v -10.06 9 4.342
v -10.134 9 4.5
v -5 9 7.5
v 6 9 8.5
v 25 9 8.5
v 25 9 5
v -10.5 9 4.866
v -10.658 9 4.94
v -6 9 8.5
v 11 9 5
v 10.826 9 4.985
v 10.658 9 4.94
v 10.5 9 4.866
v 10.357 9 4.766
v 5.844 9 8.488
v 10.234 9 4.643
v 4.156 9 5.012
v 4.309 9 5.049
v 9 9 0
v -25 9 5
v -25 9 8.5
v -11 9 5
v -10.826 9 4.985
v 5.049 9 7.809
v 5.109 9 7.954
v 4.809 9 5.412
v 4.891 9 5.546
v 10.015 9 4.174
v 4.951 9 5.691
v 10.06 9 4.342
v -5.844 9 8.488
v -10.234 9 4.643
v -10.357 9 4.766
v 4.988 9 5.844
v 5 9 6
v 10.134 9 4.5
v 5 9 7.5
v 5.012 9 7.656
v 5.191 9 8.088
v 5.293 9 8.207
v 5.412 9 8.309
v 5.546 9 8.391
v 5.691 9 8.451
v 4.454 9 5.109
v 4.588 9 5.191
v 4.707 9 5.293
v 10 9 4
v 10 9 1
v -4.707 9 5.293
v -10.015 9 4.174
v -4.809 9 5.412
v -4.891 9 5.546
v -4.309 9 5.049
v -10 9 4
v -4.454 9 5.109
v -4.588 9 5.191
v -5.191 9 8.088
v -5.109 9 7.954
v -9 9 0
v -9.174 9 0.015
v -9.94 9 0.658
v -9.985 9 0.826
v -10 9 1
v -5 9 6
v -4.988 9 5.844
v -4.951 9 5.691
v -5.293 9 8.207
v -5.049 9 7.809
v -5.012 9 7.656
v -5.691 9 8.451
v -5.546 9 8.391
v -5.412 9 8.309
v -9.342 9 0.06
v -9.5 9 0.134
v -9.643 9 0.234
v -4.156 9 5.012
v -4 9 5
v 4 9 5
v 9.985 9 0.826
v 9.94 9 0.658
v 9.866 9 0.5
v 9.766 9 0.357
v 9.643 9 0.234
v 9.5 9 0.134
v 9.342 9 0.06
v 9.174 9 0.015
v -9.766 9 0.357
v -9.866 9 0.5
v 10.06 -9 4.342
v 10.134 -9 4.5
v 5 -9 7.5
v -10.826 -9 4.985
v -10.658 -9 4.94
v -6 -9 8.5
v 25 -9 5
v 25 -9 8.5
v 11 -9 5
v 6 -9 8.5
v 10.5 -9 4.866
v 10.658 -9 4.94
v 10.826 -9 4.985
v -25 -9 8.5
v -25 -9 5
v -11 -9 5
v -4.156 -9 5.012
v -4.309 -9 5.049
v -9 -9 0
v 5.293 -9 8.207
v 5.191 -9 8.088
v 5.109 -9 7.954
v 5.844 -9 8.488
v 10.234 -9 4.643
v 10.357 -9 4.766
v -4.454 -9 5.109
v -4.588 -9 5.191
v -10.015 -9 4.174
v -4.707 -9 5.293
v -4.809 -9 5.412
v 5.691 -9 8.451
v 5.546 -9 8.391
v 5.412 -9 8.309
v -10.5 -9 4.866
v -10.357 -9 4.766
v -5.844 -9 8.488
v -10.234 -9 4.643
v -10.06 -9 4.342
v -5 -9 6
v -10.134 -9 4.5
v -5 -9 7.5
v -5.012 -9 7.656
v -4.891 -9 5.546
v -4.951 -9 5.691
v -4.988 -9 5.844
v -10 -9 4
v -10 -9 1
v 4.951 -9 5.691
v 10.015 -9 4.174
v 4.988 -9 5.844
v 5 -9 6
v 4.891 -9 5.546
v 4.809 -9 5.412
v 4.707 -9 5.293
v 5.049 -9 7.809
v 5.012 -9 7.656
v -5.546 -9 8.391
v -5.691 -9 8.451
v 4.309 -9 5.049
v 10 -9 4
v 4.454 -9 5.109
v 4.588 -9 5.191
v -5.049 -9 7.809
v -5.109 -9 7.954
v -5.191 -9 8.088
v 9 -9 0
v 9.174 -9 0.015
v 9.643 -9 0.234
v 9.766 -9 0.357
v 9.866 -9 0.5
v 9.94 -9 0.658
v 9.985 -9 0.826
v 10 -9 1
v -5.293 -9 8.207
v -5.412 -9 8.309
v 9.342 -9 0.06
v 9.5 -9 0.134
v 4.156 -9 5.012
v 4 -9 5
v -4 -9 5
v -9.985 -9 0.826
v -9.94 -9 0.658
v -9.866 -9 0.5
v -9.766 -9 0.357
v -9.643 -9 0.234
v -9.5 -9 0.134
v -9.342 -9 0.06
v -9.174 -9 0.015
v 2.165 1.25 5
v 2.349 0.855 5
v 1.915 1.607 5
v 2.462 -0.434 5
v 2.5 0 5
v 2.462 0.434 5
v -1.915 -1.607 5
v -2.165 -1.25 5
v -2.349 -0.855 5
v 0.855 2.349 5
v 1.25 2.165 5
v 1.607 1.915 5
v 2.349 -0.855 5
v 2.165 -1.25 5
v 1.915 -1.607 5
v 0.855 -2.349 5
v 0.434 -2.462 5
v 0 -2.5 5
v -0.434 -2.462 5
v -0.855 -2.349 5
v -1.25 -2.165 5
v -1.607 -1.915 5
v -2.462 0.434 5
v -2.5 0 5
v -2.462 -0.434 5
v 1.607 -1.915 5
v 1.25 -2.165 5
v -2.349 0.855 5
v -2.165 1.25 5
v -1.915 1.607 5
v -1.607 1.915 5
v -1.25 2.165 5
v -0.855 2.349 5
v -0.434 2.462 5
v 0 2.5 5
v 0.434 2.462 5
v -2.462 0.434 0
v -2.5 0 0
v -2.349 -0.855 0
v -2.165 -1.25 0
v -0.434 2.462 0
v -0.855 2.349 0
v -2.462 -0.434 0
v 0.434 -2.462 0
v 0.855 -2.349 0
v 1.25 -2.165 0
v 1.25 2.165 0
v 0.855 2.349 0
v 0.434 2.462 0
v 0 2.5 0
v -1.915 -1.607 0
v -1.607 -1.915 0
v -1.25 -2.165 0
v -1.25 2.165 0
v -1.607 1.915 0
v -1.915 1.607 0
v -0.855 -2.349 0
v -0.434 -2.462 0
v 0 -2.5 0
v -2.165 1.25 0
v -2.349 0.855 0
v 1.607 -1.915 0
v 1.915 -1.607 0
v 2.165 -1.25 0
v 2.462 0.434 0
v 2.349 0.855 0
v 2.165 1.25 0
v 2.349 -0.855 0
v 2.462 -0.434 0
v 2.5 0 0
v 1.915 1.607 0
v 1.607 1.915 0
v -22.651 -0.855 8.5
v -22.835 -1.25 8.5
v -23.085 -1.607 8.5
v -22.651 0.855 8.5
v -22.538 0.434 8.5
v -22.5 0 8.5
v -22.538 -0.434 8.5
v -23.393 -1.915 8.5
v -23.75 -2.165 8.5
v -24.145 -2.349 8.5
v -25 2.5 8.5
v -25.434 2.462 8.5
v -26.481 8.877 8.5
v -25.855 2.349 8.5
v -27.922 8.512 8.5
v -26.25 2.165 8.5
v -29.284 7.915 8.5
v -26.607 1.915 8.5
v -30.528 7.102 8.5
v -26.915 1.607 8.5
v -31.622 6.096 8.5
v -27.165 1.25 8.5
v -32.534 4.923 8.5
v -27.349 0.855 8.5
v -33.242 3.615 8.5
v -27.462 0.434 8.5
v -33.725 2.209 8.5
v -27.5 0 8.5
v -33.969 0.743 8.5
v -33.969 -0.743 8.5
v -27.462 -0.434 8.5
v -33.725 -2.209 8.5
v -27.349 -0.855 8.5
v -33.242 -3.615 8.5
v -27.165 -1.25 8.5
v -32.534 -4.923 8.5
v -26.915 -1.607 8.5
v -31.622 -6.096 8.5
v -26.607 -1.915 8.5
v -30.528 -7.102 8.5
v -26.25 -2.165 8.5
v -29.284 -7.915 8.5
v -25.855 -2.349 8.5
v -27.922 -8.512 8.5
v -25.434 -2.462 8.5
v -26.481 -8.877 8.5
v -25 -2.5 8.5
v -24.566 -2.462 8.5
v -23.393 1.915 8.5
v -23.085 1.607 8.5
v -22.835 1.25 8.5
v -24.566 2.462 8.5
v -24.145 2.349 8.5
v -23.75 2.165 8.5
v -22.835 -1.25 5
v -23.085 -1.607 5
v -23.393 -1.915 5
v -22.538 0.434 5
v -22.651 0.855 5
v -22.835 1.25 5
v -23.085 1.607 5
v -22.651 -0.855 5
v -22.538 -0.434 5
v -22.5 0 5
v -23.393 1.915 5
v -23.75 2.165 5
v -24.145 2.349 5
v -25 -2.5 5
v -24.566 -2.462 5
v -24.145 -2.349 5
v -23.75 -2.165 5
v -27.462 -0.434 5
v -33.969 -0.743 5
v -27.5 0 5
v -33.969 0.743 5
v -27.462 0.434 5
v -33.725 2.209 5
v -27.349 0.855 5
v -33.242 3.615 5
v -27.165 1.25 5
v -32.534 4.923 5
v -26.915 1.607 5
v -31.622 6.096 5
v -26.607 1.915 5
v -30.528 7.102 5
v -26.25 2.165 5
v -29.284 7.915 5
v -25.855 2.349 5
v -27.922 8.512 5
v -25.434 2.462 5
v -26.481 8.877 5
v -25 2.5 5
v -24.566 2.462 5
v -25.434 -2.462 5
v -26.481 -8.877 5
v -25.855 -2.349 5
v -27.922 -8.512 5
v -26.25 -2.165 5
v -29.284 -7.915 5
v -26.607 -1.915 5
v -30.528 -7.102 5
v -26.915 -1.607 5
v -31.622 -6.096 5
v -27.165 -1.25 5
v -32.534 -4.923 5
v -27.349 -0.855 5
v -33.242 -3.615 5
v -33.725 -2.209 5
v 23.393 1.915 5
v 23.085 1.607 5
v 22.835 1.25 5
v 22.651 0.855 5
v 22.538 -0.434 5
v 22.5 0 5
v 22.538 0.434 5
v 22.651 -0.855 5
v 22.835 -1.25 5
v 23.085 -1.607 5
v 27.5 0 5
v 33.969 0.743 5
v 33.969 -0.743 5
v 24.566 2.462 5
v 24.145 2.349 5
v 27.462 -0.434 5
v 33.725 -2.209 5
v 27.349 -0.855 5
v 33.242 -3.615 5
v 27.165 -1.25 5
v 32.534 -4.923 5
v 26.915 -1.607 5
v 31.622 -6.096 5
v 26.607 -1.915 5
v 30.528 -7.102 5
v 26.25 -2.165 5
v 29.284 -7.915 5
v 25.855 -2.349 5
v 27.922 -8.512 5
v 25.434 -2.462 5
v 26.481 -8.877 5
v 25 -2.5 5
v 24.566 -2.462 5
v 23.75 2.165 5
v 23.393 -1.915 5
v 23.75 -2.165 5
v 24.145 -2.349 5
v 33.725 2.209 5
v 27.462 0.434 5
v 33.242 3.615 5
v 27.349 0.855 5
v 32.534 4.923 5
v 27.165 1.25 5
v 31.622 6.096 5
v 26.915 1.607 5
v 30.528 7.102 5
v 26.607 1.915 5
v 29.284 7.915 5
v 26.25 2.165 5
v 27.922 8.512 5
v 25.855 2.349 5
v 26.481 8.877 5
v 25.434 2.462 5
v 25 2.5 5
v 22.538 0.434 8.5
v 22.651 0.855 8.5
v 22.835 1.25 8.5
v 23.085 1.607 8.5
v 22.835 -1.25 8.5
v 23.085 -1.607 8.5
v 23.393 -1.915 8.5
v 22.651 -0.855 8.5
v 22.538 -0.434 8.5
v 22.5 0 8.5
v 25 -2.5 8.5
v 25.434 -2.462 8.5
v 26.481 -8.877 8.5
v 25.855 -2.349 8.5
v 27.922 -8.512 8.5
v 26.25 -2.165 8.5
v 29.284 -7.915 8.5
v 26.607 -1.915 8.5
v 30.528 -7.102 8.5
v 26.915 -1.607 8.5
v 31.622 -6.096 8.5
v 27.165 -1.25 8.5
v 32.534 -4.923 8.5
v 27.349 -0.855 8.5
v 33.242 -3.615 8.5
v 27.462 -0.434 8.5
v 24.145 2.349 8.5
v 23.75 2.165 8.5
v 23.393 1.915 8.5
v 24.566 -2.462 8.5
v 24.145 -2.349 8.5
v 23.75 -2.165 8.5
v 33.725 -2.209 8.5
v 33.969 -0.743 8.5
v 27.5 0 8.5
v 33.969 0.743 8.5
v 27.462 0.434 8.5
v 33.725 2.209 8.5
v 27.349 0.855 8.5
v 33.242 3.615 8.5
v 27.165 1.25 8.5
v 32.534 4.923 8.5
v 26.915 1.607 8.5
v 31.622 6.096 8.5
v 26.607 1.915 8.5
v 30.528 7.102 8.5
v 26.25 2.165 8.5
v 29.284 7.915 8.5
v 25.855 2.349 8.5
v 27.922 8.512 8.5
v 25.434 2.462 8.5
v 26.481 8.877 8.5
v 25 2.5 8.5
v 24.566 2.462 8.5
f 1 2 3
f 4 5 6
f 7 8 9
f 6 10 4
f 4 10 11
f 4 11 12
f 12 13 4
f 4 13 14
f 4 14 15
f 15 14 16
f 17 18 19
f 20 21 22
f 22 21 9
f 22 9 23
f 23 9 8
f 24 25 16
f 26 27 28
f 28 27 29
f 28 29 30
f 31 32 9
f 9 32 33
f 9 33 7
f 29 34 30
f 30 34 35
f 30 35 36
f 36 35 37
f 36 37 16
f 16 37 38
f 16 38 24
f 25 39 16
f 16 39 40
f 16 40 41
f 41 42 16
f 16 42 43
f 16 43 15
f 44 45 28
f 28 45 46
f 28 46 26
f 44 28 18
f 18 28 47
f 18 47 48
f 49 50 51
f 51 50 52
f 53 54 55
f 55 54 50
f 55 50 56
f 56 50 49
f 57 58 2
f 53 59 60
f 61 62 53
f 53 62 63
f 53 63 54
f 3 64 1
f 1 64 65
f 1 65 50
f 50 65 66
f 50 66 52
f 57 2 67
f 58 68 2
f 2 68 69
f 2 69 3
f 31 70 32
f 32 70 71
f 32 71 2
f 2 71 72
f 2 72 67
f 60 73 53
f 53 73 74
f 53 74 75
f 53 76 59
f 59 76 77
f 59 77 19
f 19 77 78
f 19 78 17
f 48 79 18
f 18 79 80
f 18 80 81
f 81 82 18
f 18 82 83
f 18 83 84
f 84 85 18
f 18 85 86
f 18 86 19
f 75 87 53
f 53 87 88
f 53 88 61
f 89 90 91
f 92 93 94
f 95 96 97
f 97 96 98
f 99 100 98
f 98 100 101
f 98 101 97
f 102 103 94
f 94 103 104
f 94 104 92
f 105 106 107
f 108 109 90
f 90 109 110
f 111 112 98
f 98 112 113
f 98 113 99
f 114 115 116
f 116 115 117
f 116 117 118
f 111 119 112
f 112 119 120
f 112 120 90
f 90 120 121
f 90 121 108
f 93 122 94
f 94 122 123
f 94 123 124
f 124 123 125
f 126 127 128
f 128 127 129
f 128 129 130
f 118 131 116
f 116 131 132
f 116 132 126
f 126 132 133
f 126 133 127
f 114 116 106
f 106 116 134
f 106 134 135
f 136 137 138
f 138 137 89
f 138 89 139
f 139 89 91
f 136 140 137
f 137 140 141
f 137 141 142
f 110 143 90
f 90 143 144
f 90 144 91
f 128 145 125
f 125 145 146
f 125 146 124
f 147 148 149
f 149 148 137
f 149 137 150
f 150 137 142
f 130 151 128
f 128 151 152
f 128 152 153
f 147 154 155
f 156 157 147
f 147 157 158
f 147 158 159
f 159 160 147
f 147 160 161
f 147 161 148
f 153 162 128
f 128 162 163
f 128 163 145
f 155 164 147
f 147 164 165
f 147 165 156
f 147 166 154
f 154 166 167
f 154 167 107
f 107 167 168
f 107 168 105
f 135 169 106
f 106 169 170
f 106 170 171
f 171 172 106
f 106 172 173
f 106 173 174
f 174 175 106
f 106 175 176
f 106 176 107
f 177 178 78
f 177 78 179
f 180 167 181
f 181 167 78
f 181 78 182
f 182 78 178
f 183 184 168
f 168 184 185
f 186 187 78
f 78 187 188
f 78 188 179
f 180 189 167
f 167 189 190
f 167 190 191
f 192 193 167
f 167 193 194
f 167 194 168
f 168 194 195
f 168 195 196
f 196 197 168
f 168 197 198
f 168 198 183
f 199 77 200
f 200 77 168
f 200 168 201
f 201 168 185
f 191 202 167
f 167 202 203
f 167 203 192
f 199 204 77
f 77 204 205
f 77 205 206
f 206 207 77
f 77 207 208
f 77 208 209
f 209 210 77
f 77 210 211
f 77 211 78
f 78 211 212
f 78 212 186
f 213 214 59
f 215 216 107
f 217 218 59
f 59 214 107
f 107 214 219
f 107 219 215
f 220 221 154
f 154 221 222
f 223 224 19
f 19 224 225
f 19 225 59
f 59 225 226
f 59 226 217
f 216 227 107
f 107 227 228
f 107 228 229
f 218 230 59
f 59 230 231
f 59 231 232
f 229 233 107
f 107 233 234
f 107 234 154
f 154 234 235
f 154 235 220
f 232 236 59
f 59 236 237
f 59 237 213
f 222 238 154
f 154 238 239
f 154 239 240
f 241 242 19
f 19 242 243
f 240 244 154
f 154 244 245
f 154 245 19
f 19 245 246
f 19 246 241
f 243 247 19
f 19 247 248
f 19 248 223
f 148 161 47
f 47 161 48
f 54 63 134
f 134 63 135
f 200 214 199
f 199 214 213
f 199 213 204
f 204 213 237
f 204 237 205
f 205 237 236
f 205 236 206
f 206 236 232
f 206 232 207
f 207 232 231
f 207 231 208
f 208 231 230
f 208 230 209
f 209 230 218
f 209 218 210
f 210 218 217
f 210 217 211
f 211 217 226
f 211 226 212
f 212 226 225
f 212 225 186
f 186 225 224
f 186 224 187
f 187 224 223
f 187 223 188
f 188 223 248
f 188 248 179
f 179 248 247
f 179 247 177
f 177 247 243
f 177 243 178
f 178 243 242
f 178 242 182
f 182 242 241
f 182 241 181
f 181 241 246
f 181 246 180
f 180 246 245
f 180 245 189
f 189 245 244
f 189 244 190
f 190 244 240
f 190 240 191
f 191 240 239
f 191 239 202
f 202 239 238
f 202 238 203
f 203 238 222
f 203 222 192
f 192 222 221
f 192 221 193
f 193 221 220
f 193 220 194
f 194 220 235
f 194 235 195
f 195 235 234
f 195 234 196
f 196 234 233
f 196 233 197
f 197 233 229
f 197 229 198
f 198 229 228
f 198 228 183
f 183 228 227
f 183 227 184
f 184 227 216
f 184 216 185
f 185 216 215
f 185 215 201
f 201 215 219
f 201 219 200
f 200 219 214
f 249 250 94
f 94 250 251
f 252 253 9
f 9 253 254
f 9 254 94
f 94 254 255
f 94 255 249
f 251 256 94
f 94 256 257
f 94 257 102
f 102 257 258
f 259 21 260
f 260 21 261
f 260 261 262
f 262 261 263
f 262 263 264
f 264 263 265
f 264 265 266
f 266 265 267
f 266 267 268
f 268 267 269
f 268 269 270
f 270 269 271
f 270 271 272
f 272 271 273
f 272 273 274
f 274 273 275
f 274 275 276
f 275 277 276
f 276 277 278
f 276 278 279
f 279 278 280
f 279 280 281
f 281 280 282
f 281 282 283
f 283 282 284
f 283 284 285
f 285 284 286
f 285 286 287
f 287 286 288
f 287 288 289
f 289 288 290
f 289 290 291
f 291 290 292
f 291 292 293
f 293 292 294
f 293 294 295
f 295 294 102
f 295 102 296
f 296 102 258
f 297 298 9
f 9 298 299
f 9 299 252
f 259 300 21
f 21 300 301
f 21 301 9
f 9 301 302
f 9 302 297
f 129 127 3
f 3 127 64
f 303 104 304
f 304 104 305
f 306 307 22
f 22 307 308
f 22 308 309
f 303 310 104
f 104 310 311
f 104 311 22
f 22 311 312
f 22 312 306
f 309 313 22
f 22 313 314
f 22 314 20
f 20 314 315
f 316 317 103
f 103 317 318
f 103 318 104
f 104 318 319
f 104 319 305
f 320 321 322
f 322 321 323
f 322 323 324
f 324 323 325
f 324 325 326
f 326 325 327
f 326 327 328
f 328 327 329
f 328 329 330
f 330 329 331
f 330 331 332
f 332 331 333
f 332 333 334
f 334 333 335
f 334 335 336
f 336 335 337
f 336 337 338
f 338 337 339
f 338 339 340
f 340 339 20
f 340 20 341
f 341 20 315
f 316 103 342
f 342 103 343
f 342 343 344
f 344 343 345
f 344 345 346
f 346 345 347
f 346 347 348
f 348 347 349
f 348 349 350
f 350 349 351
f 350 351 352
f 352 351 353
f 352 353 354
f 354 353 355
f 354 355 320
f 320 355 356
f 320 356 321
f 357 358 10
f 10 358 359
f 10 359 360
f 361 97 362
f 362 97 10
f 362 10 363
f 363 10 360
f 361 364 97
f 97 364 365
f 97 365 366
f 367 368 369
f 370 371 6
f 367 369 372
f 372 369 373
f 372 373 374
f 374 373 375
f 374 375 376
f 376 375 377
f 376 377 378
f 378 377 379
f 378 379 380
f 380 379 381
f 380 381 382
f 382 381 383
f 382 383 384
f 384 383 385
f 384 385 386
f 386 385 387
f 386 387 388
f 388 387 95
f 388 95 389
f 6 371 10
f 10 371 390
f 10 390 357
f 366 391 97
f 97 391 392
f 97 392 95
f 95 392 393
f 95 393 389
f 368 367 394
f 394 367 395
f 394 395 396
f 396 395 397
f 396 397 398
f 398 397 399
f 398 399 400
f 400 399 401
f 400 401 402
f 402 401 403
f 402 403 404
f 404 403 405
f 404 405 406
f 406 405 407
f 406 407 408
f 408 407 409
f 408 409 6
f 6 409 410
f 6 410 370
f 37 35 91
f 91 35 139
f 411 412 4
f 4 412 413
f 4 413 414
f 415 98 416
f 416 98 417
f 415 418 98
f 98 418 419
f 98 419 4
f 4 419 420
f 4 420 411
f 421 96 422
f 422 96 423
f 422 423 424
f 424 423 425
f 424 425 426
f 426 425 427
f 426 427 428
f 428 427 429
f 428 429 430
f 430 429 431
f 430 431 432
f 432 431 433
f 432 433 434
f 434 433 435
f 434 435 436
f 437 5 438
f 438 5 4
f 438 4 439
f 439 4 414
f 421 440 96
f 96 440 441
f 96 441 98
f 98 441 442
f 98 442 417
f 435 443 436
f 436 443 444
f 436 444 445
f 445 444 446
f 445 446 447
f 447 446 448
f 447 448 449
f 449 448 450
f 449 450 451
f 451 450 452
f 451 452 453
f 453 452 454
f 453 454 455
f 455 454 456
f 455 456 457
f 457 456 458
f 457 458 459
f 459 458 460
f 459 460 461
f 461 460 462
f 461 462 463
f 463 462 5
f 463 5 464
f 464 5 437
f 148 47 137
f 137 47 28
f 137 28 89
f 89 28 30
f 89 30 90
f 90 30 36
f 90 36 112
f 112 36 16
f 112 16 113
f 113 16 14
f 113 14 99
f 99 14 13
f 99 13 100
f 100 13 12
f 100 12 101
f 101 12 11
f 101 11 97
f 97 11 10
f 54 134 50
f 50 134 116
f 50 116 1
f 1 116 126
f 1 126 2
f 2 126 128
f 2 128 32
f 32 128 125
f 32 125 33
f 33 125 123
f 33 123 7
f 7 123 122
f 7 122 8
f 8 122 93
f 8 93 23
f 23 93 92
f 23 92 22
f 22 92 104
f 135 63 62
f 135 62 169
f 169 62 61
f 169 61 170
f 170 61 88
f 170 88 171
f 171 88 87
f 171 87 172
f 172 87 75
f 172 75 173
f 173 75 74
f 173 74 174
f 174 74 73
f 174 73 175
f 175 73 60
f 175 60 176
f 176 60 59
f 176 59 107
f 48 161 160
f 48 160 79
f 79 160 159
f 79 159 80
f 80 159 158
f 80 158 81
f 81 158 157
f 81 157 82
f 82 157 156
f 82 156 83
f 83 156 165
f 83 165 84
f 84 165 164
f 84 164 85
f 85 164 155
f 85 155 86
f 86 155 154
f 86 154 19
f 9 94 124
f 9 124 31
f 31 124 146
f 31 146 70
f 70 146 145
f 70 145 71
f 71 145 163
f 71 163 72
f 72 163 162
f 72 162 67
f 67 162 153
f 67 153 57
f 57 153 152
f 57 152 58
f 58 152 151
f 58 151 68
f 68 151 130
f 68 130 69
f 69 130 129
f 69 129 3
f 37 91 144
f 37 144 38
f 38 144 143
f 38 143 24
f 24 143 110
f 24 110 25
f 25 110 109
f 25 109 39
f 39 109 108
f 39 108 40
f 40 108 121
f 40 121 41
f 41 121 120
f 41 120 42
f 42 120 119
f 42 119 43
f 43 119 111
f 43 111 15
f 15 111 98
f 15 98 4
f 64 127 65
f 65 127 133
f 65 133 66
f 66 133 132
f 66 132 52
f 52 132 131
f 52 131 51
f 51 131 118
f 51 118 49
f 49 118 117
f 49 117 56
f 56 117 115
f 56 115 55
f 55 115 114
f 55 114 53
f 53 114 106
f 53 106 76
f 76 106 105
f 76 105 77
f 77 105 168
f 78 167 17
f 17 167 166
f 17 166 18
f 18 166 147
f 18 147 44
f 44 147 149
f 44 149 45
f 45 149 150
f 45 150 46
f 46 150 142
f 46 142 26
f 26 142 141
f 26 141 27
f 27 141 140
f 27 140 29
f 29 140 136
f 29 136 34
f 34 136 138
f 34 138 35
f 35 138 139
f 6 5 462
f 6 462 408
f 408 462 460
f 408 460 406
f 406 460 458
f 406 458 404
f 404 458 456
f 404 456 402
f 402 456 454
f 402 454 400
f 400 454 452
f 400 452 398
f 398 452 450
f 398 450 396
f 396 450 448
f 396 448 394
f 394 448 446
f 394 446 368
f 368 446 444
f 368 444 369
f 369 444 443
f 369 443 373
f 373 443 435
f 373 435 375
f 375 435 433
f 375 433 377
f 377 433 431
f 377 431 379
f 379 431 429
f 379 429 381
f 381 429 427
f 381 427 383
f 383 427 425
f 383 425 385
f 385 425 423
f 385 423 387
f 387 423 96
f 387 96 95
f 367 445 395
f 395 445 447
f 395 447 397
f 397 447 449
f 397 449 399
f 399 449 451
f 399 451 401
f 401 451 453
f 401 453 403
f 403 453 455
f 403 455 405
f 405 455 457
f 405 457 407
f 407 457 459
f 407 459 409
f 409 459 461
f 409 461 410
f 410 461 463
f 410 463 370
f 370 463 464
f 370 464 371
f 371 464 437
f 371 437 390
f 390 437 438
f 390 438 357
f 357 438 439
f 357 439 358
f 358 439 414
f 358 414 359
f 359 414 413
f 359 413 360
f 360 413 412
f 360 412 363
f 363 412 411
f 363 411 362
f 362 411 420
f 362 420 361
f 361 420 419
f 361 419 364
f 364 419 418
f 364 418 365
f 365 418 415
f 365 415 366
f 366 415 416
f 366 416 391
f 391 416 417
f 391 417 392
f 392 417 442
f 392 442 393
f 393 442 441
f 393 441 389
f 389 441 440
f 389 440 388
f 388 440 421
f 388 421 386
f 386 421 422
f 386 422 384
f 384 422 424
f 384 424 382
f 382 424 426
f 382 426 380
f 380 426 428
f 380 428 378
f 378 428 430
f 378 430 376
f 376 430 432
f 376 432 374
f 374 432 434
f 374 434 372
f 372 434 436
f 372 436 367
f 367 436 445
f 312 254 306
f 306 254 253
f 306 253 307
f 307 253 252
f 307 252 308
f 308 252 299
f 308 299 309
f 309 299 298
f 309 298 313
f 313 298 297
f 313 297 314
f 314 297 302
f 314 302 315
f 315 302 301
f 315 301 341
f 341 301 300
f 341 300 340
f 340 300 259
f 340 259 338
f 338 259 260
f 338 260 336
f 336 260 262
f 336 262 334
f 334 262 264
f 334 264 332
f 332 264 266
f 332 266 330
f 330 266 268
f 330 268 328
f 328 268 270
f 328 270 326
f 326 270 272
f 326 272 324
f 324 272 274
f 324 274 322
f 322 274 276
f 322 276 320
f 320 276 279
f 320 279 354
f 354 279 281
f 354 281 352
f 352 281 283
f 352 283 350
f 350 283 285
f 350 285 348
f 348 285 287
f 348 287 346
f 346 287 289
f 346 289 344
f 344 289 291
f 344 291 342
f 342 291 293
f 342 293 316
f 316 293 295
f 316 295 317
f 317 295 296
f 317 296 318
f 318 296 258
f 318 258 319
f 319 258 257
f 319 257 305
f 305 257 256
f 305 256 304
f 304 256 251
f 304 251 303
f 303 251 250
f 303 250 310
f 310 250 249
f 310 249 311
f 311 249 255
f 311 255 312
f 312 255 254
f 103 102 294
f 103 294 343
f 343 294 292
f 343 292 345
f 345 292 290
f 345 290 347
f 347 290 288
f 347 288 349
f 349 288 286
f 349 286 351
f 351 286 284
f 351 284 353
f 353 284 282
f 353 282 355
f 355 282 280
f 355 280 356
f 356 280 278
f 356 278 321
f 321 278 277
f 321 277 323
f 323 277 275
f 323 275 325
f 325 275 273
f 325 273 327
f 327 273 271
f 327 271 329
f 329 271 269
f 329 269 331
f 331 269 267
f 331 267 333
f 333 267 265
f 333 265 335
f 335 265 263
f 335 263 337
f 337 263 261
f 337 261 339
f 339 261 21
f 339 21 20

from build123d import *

# Parameters (mm, degrees)
SCHIZZO1_W                   = 20
SCHIZZO1_H                   = 18
SCHIZZO1_R                   = 2.5
ESTRUSIONE_ESTRUSIONE1_DEPTH = 5
SCHIZZO2_W                   = 30
SCHIZZO2_H                   = 3.5
ESTRUSIONE_ESTRUSIONE2_DEPTH = 18
RACCORDO2_R                  = 1
SCHIZZO3_R                   = 2.5
TAGLIO_ESTRUSIONE1_DEPTH     = 10


with BuildPart() as part:
    # Schizzo1 → Estrusione-Estrusione1 (new body)
    with BuildSketch(Plane.XY):
        Rectangle(SCHIZZO1_W, SCHIZZO1_H)
        Circle(SCHIZZO1_R, mode=Mode.SUBTRACT)
    extrude(amount=ESTRUSIONE_ESTRUSIONE1_DEPTH)

    # Schizzo2 → Estrusione-Estrusione2 (add, through all)
    with BuildSketch(Plane.XZ.offset(9)):
        with Locations((20, 6.75)):
            Rectangle(SCHIZZO2_W, SCHIZZO2_H)
        with Locations((-20, 6.75)):
            Rectangle(SCHIZZO2_W, SCHIZZO2_H)
    extrude(amount=-ESTRUSIONE_ESTRUSIONE2_DEPTH)

    # Raccordo2
    raccordo2_edges = [part.edges().sort_by_distance(p)[0] for p in [
        (-10, 0, 5),
        (-5, 0, 5),
        (-5, 0, 8.5),
        (5, 0, 5),
        (5, 0, 8.5),
        (10, 0, 5),
        (-10, 0, 0),
        (10, 0, 0),
    ]]
    fillet(raccordo2_edges, radius=RACCORDO2_R)

    # Schizzo3 → Taglio-Estrusione1 (cut)
    with BuildSketch(Plane.XY.offset(8.5)):
        with Locations((-25, 0)):
            Circle(SCHIZZO3_R)
        with Locations((25, 0)):
            Circle(SCHIZZO3_R)
        with BuildLine():
            Line((25, 9), (35, 9))
            Line((35, 9), (35, -9))
            Line((35, -9), (25, -9))
            ThreePointArc((25, -9), (34, 0), (25, 9))
        make_face()
        with BuildLine():
            Line((-35, 9), (-35, -9))
            Line((-35, -9), (-25, -9))
            ThreePointArc((-25, -9), (-34, 0), (-25, 9))
            Line((-25, 9), (-35, 9))
        make_face()
    extrude(amount=-TAGLIO_ESTRUSIONE1_DEPTH, mode=Mode.SUBTRACT)


solid = part.part
